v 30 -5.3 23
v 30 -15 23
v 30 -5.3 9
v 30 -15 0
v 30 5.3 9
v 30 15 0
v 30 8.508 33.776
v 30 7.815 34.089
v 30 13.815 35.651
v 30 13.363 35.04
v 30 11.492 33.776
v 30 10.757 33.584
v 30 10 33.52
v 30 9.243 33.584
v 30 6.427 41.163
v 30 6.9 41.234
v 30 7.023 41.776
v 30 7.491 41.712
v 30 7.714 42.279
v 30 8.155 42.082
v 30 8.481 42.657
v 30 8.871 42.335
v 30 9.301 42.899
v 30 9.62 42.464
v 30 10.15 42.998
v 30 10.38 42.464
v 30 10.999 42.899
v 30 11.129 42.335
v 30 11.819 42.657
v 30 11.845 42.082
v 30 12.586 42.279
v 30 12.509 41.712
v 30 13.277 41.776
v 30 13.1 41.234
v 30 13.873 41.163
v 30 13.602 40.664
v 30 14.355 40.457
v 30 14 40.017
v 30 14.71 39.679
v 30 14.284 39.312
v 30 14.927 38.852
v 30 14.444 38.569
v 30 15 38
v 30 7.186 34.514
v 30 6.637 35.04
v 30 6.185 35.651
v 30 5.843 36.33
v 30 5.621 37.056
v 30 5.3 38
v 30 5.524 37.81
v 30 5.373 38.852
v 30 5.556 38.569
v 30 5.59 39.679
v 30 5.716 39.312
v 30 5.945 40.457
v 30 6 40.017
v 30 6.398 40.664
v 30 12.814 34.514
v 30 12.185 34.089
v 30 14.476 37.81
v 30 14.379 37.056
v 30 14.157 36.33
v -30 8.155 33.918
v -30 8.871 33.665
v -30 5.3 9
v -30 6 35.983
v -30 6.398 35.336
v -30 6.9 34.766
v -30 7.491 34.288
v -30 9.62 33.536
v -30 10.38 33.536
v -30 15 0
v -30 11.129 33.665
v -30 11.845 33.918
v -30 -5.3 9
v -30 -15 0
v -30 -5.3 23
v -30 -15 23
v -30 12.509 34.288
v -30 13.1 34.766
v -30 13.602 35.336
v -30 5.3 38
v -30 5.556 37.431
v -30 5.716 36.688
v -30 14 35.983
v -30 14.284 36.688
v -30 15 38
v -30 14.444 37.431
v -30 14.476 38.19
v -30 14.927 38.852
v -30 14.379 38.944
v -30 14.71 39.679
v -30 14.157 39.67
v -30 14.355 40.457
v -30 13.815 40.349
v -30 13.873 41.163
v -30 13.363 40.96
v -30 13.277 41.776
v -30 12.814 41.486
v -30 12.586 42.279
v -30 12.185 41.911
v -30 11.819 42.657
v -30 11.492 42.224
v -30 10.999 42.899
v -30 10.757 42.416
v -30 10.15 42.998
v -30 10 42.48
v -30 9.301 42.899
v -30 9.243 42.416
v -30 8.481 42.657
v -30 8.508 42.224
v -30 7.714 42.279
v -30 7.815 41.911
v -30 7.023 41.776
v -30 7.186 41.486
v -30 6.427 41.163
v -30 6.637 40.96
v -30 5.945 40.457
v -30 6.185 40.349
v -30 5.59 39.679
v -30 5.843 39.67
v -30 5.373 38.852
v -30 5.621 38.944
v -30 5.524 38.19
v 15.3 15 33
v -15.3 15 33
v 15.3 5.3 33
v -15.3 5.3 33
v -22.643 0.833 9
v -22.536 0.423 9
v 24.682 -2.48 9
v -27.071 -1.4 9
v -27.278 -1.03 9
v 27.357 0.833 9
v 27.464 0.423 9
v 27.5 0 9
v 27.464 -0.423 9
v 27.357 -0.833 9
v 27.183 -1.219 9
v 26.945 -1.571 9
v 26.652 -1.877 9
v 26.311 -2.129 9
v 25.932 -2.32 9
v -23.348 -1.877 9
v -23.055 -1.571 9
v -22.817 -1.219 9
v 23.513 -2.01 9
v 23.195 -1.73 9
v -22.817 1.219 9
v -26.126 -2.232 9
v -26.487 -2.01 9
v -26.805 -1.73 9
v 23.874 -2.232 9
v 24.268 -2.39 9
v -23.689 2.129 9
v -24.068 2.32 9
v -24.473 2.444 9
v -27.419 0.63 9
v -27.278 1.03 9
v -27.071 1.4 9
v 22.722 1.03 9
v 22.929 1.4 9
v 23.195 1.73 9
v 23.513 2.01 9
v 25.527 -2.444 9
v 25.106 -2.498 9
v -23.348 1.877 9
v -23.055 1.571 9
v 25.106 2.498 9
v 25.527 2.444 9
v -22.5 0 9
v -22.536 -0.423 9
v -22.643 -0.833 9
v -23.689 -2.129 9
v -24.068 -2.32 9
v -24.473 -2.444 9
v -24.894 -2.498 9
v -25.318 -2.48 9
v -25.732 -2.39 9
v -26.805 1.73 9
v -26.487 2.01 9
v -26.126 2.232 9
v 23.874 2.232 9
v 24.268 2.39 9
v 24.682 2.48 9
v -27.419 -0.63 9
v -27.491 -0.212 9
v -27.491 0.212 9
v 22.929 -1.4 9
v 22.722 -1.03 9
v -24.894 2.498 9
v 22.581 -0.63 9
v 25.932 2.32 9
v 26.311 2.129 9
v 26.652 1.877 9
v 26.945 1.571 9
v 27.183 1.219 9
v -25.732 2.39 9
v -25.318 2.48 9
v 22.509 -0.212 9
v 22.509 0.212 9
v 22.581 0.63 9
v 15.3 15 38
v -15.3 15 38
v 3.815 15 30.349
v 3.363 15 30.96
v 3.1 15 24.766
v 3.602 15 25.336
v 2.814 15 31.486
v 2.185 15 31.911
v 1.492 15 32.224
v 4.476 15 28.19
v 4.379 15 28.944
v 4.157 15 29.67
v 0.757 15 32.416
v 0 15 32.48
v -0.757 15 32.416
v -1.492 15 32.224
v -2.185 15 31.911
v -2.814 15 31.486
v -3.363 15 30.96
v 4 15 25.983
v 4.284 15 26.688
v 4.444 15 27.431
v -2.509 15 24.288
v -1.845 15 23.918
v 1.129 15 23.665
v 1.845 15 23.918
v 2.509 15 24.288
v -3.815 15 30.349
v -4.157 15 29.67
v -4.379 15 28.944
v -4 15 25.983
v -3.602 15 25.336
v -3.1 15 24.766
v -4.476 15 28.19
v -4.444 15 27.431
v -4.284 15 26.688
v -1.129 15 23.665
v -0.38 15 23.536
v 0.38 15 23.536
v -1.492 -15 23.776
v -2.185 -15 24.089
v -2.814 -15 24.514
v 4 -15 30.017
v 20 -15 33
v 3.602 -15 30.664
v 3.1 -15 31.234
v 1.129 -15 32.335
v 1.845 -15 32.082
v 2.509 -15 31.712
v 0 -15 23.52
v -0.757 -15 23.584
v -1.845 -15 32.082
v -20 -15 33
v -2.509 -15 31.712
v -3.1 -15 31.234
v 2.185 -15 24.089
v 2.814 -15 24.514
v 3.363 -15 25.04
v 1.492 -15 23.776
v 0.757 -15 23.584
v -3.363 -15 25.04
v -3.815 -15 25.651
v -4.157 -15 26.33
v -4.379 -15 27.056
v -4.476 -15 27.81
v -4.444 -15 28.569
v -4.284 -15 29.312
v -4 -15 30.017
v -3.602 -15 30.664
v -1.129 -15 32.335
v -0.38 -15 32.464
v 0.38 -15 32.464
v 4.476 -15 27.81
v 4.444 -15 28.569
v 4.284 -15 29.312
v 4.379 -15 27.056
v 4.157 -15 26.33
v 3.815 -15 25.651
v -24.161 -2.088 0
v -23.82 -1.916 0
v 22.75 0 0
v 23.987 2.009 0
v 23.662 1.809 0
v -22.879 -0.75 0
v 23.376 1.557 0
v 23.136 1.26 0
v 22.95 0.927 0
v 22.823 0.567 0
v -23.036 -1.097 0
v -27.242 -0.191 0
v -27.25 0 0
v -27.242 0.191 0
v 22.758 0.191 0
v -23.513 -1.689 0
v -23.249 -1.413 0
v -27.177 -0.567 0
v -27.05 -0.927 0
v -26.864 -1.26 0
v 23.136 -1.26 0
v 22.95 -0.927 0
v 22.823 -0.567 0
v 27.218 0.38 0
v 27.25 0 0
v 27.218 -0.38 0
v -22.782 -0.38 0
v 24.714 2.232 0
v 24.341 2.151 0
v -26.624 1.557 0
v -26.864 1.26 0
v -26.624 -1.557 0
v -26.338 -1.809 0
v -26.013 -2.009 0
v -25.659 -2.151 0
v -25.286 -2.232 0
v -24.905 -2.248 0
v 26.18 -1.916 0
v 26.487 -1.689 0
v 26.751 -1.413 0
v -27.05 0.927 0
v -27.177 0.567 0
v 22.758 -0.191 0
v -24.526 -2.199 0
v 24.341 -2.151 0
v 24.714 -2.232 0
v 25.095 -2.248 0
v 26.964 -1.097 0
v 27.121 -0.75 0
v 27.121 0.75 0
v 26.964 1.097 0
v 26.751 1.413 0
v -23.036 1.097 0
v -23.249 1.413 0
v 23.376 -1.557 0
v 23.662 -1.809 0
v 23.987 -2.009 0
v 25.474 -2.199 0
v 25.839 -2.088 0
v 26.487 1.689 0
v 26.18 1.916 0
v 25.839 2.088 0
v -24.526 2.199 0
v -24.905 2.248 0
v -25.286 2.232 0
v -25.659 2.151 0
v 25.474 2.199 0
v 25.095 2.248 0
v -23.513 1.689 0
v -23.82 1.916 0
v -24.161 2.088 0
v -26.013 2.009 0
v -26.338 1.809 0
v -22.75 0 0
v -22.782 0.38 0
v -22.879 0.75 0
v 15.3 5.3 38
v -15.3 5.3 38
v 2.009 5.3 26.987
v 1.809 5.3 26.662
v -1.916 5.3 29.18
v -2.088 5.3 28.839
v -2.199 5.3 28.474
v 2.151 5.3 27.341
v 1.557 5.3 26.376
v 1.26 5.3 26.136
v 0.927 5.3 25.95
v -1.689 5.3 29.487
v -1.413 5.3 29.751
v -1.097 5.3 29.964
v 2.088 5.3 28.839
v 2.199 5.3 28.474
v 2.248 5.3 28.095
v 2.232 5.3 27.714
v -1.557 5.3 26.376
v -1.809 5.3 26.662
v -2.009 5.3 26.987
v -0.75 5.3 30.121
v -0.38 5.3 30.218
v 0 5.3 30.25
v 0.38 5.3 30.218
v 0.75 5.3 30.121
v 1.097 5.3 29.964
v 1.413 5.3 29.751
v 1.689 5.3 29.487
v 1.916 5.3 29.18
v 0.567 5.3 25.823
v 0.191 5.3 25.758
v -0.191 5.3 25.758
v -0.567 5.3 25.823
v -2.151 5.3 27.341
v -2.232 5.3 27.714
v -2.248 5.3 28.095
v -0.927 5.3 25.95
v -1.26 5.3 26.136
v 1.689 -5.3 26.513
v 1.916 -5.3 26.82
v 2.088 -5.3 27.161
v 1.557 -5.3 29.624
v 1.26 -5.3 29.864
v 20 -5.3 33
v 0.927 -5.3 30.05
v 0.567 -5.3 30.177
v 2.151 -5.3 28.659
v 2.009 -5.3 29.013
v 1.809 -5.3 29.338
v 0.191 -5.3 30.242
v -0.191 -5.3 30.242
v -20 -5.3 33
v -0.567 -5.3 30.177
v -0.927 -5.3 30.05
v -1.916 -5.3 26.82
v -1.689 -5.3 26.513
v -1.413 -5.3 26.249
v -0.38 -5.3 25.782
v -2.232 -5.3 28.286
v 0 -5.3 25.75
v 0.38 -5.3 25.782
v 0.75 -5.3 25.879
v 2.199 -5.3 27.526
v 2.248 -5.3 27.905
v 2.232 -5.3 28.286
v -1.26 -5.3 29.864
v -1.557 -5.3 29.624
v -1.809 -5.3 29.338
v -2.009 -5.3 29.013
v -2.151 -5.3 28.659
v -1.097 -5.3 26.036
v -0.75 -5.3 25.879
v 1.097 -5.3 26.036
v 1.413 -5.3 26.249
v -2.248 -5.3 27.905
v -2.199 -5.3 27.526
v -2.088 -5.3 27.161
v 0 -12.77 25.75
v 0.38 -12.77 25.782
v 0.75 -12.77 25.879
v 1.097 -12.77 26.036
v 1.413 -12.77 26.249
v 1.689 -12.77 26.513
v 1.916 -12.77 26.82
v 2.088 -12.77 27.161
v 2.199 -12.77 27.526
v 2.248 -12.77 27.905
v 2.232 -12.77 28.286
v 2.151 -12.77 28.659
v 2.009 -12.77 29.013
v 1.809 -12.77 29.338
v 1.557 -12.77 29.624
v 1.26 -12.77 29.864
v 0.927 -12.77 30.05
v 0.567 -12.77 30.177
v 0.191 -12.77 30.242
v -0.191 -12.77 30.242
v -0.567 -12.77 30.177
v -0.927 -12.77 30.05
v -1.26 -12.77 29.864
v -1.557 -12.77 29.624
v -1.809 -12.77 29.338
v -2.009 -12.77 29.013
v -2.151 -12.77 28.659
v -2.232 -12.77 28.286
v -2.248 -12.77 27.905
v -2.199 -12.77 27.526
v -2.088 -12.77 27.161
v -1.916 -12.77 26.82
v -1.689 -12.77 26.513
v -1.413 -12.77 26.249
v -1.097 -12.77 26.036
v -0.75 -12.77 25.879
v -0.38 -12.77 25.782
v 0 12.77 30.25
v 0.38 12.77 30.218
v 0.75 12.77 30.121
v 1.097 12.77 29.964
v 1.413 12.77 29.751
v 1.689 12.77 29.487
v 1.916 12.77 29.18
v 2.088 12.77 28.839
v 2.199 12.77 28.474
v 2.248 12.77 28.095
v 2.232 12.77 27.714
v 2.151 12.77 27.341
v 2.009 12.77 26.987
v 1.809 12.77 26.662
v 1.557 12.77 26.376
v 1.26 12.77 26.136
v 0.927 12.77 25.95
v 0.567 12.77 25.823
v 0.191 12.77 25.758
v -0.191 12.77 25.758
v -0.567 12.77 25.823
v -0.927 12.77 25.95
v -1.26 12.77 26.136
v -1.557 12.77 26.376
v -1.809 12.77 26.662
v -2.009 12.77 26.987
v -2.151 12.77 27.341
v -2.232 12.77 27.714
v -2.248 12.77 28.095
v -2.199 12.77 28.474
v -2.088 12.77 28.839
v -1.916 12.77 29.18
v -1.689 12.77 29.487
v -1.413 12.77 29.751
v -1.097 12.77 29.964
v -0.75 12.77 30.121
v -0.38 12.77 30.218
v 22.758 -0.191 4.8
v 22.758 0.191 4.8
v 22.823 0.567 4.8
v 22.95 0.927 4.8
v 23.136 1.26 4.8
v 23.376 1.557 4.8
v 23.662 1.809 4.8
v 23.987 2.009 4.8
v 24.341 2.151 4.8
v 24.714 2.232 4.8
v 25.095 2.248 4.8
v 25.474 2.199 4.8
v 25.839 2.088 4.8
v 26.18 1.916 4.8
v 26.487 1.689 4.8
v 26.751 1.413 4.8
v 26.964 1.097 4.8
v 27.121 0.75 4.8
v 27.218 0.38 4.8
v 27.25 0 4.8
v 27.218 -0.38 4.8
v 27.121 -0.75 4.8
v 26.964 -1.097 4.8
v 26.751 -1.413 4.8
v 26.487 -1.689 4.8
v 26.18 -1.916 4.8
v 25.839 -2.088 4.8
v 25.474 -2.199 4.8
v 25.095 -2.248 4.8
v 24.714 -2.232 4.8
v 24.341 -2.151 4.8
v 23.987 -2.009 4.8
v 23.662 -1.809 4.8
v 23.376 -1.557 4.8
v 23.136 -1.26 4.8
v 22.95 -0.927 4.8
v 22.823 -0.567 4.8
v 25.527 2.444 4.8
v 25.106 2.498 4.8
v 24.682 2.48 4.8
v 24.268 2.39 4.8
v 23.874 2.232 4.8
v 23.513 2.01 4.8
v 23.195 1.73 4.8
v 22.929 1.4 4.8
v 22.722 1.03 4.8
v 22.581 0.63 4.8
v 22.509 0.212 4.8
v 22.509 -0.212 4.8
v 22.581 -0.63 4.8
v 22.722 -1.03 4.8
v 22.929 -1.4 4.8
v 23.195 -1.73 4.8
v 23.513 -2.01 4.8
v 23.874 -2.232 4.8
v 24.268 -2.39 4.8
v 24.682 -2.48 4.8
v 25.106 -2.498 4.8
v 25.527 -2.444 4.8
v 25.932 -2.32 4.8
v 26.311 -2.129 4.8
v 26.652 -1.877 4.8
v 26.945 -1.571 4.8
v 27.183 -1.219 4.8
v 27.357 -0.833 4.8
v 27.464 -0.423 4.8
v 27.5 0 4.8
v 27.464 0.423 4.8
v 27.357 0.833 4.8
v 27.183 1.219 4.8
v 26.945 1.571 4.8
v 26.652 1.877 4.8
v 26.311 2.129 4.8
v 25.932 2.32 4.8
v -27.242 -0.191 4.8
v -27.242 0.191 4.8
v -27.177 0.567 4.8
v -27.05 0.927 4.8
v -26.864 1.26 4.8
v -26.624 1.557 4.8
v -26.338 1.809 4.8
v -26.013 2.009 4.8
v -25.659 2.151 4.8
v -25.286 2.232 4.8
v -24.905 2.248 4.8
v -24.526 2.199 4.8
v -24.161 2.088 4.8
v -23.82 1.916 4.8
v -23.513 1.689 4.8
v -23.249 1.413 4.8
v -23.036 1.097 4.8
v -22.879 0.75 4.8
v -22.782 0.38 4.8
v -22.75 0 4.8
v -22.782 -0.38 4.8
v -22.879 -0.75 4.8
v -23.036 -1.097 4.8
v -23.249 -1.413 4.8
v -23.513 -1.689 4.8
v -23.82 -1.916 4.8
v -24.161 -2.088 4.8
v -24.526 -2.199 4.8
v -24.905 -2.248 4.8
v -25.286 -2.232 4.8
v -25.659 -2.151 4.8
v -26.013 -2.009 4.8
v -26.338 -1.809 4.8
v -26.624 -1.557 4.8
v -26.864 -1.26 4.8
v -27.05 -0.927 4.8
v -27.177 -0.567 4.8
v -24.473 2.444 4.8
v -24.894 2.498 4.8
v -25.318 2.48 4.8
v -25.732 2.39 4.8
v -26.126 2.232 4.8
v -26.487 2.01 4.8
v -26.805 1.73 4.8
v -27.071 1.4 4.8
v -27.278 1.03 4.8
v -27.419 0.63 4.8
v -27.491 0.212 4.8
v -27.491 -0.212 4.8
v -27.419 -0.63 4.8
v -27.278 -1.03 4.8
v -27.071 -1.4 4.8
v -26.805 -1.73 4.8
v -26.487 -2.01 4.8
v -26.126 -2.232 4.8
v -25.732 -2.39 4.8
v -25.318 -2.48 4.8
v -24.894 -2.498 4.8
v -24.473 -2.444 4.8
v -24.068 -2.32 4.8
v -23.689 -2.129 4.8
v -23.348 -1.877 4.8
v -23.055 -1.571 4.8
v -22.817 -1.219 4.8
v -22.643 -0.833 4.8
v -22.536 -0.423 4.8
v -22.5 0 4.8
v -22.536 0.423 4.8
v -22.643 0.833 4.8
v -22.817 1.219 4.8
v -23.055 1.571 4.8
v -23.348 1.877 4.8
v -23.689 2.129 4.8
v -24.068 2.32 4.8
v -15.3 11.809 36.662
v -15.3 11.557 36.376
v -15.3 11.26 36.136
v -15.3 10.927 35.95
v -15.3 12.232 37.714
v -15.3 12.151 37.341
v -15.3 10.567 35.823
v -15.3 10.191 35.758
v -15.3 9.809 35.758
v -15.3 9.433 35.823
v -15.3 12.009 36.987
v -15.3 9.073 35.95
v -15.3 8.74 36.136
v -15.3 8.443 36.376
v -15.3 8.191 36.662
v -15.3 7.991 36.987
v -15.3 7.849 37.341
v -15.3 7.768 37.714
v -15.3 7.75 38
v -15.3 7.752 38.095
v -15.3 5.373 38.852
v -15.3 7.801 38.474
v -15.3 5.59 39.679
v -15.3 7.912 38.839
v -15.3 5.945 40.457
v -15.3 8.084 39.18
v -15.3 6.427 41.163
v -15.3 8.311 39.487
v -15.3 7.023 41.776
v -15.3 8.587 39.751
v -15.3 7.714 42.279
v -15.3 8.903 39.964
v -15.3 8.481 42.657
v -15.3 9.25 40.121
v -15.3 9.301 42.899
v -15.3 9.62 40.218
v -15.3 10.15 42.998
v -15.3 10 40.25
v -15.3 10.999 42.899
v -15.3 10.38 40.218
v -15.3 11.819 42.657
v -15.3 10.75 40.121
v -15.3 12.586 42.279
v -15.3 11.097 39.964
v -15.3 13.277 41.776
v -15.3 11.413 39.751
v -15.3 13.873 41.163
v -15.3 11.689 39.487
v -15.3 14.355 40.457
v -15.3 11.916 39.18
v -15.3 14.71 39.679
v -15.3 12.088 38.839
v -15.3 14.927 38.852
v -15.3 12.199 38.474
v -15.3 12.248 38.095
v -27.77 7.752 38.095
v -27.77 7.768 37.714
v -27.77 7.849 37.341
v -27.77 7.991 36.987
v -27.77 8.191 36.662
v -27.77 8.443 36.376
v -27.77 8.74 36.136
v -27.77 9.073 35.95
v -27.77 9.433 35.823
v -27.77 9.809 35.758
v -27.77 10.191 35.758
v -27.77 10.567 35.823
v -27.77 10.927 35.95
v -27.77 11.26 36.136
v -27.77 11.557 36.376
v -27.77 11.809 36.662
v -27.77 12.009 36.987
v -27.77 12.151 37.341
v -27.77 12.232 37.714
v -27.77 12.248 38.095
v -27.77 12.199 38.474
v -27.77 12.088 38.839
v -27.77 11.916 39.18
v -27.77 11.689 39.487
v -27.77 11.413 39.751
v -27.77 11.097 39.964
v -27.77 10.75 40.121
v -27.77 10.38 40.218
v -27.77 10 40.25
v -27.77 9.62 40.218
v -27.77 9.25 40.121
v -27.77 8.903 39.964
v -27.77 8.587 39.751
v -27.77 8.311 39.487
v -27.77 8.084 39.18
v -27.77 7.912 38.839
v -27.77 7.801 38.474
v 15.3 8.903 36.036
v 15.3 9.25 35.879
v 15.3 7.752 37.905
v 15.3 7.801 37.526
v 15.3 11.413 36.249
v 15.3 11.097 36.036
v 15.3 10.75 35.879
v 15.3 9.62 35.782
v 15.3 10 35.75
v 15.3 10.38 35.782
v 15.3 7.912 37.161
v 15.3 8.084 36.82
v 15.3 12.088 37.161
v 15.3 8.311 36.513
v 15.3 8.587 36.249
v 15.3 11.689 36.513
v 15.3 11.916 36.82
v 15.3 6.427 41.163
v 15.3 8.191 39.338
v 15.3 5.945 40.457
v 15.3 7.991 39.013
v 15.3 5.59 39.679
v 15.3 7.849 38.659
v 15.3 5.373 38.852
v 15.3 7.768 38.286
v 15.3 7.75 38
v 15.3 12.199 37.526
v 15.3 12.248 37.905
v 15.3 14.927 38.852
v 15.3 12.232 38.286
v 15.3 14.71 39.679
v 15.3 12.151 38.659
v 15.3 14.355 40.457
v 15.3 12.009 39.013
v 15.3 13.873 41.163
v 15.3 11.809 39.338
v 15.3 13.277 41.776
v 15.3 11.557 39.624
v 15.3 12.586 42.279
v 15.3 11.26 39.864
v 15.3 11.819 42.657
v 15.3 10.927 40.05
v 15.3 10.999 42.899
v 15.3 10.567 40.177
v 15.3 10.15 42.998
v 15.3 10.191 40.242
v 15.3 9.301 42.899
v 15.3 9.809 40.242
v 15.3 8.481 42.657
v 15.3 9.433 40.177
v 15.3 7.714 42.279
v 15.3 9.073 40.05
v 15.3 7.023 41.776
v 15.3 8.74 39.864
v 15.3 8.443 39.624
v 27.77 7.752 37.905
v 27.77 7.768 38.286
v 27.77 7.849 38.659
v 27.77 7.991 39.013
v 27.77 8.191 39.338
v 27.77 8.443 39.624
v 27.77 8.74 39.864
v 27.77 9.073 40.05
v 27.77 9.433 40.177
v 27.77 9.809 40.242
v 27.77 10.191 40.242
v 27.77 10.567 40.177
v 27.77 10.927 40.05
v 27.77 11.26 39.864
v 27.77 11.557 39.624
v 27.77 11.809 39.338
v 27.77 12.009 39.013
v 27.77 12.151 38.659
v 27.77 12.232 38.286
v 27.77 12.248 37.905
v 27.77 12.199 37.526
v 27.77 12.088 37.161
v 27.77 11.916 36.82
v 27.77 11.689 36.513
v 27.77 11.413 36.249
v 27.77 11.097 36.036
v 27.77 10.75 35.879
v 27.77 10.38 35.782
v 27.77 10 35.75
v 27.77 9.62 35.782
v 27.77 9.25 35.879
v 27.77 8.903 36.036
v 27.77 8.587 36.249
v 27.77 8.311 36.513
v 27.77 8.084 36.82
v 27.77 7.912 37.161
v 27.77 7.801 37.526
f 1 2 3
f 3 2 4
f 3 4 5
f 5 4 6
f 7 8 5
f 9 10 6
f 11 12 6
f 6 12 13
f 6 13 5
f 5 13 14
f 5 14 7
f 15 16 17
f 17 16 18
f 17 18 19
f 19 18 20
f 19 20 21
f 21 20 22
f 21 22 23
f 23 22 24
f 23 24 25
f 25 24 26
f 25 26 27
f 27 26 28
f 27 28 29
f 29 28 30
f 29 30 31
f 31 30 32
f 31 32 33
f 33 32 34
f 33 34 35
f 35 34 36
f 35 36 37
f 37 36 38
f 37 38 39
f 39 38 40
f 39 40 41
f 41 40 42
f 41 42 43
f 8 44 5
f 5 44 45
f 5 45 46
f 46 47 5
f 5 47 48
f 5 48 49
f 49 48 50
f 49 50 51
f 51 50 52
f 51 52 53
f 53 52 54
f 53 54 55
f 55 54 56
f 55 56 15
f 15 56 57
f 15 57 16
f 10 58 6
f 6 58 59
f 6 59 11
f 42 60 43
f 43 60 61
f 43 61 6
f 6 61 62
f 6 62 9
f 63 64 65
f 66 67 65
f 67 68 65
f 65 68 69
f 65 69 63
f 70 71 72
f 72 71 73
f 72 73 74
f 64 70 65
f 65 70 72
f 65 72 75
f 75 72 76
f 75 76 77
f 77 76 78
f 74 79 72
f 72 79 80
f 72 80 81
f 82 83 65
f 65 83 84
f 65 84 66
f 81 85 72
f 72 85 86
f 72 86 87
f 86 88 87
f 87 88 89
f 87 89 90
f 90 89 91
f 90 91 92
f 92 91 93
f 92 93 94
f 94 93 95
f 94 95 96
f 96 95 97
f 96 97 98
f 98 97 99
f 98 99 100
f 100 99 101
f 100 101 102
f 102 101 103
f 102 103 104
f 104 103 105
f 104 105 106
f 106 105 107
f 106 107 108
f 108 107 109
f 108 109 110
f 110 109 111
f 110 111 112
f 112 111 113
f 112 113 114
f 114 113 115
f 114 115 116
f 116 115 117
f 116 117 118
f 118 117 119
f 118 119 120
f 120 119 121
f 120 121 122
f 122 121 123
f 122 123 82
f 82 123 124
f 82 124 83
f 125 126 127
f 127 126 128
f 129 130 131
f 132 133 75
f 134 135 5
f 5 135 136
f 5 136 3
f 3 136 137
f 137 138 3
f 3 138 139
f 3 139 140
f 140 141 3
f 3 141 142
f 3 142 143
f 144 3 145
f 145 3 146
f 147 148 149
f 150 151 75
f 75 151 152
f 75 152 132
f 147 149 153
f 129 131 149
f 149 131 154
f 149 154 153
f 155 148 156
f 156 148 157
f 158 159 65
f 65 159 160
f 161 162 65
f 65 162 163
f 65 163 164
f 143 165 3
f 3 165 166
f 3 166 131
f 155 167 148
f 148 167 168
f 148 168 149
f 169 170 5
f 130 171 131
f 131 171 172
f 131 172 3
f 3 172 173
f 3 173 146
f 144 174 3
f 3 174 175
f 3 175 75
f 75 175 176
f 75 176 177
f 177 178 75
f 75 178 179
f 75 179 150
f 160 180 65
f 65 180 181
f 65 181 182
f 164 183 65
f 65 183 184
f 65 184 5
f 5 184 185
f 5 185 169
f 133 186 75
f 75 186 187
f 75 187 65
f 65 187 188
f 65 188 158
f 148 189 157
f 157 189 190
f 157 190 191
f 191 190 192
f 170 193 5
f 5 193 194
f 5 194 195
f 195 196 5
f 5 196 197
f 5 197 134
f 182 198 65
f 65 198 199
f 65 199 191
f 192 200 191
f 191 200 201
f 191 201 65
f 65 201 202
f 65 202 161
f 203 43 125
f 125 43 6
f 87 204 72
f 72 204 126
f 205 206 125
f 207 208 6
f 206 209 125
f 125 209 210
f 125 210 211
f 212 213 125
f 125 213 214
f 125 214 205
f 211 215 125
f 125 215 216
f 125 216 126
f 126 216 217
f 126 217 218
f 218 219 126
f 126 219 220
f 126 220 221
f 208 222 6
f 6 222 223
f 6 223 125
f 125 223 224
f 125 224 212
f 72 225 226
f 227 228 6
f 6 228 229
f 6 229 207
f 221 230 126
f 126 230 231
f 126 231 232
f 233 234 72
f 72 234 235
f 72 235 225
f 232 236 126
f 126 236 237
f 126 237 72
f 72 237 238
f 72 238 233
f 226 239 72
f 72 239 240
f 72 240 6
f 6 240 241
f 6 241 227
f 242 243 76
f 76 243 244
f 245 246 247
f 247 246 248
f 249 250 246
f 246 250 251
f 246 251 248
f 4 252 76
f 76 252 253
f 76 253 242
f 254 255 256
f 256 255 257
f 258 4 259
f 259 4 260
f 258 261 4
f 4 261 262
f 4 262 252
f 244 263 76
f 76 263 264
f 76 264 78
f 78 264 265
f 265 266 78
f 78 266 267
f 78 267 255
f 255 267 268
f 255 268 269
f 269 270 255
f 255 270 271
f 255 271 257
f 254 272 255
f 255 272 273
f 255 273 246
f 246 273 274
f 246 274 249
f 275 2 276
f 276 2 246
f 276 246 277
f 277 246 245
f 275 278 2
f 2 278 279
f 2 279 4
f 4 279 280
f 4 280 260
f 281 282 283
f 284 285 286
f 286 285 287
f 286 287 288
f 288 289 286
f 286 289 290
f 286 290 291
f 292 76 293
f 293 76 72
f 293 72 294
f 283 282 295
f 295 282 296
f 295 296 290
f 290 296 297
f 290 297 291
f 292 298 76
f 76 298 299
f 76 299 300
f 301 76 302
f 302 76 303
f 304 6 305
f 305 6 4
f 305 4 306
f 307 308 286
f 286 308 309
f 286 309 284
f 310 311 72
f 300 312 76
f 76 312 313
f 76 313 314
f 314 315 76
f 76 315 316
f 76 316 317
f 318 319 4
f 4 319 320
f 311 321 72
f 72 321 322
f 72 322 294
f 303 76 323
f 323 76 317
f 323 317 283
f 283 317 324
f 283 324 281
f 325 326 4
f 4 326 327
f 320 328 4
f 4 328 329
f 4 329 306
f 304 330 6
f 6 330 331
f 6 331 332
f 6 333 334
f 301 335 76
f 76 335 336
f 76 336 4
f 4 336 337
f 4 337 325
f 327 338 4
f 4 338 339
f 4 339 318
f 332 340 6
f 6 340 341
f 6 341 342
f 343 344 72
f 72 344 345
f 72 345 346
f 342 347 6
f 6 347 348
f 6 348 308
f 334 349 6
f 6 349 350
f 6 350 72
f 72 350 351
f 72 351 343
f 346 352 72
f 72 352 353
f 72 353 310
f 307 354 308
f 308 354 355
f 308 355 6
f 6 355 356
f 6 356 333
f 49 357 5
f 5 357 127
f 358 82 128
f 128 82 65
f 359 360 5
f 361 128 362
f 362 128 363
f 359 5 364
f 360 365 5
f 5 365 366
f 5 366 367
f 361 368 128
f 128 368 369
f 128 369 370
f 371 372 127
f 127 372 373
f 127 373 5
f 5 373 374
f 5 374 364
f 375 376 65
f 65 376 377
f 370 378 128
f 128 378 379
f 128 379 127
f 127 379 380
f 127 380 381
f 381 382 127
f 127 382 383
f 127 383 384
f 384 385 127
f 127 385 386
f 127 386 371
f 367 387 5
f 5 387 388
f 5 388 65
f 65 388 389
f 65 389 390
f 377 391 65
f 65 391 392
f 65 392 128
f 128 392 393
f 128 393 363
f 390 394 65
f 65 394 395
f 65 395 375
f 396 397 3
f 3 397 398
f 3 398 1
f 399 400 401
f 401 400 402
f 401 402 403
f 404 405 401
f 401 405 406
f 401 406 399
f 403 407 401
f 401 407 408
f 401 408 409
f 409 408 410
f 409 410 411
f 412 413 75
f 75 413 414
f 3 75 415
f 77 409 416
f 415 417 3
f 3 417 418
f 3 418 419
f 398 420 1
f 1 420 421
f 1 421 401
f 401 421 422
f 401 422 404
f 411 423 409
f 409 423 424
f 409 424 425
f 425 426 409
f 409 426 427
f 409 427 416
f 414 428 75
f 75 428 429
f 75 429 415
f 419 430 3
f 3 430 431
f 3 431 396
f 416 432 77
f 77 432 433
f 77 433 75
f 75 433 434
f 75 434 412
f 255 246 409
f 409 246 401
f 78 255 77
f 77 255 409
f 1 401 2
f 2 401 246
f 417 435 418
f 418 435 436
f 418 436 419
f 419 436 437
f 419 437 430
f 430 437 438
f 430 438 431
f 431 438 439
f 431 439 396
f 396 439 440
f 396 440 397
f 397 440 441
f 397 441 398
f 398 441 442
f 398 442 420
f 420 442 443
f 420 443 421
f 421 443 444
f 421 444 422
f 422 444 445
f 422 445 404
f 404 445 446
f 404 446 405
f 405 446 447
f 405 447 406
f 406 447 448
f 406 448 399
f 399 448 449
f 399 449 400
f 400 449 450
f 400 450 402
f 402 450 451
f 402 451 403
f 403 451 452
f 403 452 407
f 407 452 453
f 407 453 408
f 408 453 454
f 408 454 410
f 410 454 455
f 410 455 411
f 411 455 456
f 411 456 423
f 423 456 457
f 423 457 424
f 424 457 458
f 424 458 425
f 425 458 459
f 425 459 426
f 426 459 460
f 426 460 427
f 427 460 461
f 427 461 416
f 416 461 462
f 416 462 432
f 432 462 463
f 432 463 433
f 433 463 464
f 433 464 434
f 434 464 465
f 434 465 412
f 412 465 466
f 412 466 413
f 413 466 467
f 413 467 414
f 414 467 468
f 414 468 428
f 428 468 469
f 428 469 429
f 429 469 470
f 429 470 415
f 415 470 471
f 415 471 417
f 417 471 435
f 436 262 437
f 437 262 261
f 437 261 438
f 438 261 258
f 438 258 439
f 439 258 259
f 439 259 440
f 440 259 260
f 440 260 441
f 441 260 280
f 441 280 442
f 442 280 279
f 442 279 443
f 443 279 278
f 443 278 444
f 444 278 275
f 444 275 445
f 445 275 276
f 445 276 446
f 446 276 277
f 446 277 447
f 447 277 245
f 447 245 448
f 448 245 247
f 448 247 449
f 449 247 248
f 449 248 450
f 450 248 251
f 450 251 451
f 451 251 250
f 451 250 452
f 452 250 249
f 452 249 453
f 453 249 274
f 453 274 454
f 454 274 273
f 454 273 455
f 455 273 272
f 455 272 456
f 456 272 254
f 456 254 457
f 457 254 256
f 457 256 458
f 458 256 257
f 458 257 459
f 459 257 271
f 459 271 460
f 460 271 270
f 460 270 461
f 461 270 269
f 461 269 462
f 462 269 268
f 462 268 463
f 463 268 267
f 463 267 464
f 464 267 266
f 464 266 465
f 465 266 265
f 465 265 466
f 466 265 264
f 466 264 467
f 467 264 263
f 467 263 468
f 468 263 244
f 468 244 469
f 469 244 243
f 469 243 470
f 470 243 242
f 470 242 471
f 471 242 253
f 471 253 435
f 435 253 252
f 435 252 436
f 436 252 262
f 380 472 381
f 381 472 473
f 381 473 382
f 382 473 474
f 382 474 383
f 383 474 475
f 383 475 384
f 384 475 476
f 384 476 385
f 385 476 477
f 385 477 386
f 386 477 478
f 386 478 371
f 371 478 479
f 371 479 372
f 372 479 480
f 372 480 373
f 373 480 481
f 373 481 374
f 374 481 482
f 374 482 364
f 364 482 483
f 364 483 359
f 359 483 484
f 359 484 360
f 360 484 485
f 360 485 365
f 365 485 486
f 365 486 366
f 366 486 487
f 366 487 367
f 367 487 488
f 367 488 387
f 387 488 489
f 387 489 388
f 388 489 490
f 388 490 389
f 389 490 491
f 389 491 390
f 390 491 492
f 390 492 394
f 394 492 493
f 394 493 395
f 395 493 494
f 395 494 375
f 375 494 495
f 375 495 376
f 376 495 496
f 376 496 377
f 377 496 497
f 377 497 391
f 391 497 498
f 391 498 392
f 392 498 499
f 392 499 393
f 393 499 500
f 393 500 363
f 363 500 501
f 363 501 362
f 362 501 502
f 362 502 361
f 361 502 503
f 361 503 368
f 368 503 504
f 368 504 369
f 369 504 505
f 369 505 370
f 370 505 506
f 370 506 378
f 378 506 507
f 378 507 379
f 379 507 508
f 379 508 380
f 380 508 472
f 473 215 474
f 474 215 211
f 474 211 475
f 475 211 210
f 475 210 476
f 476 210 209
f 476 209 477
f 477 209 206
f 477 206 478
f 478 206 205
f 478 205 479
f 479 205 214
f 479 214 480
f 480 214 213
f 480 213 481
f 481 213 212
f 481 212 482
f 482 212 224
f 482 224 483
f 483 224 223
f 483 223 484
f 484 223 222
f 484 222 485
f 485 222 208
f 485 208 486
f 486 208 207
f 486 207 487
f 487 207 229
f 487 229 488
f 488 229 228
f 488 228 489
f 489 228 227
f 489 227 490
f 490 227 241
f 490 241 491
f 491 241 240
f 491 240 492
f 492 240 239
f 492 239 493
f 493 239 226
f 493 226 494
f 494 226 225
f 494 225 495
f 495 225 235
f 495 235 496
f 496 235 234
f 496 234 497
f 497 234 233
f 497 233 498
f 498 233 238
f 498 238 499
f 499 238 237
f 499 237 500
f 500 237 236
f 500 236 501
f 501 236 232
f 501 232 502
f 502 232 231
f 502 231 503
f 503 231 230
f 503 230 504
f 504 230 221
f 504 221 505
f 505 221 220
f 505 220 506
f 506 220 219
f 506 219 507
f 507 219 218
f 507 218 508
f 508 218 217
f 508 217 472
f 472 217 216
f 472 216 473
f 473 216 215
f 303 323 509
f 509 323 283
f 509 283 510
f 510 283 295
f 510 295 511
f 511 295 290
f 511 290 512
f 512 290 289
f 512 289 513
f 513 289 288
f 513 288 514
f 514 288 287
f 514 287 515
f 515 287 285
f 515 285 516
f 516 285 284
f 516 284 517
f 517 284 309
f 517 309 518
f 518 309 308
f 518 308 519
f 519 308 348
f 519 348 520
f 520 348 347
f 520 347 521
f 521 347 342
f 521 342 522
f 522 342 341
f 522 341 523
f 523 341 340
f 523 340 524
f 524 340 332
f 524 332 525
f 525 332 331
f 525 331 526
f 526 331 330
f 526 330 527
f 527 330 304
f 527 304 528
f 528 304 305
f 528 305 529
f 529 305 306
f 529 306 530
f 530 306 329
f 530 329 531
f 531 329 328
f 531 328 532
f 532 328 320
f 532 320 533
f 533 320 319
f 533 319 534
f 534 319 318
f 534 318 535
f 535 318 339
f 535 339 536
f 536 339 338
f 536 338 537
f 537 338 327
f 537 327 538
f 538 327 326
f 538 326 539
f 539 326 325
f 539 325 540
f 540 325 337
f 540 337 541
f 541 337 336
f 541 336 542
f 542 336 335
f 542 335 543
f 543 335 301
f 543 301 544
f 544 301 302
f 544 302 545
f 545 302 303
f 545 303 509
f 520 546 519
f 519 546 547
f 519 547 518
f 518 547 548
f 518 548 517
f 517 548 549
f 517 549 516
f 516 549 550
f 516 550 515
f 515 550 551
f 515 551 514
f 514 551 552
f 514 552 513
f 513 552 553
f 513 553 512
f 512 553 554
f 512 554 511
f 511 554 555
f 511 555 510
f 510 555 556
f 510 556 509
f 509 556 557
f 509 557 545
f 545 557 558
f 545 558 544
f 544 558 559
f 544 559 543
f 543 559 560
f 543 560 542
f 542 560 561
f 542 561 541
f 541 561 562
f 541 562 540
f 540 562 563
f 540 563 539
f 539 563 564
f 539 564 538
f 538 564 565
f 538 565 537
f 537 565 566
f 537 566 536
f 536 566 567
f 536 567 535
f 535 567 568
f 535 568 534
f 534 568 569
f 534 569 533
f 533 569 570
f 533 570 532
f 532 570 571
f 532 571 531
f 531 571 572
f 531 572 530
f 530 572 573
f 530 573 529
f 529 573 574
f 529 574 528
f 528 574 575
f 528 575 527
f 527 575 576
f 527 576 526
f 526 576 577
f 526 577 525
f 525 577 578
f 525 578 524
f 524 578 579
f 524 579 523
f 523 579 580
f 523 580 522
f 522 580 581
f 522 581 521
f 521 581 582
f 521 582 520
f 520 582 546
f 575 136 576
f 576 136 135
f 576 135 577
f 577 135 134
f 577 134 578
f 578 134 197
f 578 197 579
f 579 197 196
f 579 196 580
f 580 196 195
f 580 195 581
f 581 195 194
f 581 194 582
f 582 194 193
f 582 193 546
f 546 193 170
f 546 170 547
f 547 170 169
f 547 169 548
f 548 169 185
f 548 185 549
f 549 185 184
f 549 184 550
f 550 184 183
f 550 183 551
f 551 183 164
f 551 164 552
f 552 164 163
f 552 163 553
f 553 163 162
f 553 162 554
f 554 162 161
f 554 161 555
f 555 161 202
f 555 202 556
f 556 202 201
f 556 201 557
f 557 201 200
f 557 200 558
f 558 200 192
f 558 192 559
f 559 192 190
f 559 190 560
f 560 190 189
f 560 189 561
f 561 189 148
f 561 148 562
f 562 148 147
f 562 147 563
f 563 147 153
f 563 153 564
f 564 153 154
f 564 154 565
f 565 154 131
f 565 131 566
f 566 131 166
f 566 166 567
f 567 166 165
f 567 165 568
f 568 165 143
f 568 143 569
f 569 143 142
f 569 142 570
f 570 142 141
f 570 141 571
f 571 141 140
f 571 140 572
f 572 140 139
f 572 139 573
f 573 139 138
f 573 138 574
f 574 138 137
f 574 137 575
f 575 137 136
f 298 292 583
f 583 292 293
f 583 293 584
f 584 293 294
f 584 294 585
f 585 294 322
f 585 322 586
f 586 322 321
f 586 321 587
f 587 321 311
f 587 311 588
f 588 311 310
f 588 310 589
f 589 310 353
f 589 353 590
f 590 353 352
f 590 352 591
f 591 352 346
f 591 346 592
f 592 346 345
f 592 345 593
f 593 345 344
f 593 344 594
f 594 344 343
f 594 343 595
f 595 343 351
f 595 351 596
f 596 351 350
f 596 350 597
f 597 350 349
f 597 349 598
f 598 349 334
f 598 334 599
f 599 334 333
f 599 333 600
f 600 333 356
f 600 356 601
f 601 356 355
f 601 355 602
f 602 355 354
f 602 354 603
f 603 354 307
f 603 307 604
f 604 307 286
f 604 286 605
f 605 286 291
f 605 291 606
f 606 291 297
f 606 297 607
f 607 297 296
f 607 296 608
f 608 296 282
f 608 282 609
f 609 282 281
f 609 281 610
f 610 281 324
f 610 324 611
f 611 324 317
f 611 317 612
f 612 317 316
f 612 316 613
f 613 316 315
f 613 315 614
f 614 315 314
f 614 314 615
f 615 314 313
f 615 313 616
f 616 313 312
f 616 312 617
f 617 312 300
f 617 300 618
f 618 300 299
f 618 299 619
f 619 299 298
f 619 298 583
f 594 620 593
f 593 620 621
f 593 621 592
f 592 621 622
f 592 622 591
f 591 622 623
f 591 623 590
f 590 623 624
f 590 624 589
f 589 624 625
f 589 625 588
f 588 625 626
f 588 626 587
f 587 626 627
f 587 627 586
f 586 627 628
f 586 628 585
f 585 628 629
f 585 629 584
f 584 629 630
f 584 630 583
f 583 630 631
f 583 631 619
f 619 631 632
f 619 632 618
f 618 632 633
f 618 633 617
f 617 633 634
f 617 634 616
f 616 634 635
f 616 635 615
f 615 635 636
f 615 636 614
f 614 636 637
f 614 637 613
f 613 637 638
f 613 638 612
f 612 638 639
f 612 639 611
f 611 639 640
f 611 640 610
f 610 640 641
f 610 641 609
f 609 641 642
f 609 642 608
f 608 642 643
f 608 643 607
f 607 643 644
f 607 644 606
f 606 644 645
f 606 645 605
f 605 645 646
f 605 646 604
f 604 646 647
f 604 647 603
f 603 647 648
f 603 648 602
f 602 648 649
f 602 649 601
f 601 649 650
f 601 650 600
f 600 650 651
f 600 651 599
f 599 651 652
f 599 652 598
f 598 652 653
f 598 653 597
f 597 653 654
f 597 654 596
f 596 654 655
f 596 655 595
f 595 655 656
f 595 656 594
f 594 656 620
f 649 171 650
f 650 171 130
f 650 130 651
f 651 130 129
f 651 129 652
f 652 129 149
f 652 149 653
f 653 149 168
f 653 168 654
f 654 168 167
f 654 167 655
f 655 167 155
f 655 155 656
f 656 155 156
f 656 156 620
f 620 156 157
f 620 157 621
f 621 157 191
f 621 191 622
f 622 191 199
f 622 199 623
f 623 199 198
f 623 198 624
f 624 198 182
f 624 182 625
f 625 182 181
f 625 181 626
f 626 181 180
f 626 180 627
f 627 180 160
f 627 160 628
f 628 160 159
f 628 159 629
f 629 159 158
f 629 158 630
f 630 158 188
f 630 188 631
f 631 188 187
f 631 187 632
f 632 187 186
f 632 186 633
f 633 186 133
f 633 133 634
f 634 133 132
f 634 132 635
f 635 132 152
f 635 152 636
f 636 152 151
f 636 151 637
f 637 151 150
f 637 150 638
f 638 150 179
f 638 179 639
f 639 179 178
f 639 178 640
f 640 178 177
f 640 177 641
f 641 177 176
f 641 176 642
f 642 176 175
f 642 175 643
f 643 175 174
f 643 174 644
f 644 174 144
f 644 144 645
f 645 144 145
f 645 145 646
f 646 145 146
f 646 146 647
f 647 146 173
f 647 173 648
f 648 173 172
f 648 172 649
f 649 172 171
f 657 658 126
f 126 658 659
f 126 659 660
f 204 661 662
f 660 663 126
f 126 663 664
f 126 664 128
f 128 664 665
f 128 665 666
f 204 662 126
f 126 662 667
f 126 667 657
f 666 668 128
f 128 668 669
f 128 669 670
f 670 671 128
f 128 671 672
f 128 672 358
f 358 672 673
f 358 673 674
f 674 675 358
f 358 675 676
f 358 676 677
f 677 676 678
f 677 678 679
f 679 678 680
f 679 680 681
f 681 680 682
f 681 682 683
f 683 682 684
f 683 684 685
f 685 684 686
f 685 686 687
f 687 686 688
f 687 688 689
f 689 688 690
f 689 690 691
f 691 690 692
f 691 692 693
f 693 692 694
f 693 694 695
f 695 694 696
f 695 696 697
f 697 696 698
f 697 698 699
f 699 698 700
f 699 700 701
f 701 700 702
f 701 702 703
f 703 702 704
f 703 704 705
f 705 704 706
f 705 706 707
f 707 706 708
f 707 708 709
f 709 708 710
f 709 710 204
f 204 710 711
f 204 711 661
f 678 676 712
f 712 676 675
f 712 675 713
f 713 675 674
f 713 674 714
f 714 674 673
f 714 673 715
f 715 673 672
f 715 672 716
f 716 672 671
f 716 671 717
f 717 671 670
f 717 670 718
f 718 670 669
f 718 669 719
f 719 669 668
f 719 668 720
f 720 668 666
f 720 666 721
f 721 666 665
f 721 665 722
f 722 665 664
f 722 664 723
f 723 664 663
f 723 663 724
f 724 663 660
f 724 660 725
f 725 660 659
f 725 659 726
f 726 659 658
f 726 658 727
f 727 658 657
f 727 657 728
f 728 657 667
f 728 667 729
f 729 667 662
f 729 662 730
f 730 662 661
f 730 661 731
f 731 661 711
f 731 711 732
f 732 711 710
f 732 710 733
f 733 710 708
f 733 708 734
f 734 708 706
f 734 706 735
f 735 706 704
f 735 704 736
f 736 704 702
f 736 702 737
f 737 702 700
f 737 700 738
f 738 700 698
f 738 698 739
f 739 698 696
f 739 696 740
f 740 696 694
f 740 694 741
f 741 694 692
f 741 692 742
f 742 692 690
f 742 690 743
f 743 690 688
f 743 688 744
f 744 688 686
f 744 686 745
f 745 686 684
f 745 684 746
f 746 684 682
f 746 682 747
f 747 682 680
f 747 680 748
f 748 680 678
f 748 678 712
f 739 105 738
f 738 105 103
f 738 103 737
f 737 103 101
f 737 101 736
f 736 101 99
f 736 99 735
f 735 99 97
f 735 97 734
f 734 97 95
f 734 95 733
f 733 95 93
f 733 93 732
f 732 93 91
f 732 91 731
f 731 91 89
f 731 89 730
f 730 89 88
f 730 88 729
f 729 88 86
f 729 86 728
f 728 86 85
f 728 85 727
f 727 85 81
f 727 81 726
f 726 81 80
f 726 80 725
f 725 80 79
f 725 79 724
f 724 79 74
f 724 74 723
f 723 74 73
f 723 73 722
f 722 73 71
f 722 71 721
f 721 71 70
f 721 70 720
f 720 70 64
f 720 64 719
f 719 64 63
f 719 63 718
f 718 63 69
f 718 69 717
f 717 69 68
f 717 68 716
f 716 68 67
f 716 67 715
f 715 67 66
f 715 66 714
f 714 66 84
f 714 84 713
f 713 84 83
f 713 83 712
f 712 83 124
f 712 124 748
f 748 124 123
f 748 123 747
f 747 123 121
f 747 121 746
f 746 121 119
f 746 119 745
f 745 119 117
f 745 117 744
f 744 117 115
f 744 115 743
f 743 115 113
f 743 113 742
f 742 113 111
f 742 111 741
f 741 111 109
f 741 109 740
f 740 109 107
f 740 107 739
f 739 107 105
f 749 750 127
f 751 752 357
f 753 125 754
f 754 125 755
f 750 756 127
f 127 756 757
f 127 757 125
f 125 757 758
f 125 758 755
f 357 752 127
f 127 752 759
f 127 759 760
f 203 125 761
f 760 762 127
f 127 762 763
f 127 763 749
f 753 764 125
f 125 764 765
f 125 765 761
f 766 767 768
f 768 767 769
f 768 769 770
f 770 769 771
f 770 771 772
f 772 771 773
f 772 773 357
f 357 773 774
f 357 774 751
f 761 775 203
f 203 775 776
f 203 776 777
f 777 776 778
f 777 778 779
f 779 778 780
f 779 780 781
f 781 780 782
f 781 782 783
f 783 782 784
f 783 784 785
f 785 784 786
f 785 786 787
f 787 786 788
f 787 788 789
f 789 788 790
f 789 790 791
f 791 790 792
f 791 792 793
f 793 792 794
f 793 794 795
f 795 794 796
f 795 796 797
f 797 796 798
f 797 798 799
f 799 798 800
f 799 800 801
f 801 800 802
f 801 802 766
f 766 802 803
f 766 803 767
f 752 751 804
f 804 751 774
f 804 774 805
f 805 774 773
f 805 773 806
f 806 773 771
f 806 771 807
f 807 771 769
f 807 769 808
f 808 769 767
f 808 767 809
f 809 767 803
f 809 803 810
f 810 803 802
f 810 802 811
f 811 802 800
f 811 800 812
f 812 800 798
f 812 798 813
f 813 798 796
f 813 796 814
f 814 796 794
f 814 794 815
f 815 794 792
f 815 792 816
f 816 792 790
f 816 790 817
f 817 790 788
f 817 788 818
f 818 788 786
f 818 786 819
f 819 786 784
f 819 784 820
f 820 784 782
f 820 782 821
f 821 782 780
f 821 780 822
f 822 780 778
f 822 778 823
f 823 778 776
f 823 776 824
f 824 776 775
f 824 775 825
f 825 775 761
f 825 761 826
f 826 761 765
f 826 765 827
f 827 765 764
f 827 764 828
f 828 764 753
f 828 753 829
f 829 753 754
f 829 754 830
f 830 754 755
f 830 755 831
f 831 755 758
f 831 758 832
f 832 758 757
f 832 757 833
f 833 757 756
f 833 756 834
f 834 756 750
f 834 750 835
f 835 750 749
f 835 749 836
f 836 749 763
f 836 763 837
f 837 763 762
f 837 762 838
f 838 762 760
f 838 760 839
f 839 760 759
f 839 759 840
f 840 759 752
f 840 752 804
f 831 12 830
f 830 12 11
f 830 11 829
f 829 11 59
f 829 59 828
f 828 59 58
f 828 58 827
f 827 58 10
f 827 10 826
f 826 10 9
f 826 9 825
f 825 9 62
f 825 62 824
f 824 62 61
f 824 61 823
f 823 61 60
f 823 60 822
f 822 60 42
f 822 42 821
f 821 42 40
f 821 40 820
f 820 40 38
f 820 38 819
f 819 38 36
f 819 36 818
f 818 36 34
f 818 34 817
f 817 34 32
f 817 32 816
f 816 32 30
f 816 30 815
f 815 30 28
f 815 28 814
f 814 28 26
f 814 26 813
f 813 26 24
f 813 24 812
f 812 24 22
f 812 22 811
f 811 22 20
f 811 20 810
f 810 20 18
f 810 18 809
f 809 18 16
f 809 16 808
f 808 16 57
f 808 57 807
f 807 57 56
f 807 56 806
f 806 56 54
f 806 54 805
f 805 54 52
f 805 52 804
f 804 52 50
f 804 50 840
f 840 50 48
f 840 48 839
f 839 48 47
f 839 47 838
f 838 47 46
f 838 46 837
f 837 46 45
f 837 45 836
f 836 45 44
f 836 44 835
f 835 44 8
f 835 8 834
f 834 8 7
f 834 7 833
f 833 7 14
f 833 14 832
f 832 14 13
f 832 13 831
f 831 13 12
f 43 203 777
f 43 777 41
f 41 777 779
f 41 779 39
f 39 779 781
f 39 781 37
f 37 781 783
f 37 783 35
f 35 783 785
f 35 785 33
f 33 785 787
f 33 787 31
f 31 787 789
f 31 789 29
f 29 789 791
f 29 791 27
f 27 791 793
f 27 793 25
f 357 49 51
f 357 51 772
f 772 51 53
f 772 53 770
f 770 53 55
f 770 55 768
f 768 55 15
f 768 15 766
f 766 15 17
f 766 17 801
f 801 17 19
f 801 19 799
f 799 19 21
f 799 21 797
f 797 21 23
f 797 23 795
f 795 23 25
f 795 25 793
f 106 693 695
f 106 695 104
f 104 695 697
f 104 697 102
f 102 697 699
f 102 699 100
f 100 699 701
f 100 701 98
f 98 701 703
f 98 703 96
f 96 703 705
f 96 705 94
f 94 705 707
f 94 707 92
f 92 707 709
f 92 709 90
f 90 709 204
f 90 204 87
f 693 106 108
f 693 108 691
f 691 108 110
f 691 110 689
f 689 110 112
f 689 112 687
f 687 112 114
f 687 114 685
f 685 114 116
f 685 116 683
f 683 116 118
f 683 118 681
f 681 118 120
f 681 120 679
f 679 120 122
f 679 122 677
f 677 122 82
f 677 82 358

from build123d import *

# Parameters (mm, degrees)
SKETCH1_W                               = 60
SKETCH1_H                               = 30
BOSS_EXTRUDE1_DEPTH                     = 9
SKETCH2_W                               = 60
SKETCH2_H                               = 9.7
BOSS_EXTRUDE2_DEPTH                     = 24
CHAMFER1_SIZE                           = 10
CSK_FOR_M4_SFHCS1_D                     = 4.5
CSK_FOR_M4_SFHCS1_DEPTH                 = 12
CSK_FOR_M4_SFHCS1_CSINK_D               = 8.96
CSK_FOR_M4_SFHCS1_CSINK_ANGLE           = 90
CSK_FOR_M4_SFHCS1_TIP                   = 1.351936393
CSK_FOR_M4_SFHCS3_D                     = 4.5
CSK_FOR_M4_SFHCS3_DEPTH                 = 12
CSK_FOR_M4_SFHCS3_CSINK_D               = 8.96
CSK_FOR_M4_SFHCS3_CSINK_ANGLE           = 90
CSK_FOR_M4_SFHCS3_TIP                   = 1.351936393
CBORE_FOR_M5_HEX_HEAD_BOLT2_D           = 4.5
CBORE_FOR_M5_HEX_HEAD_BOLT2_DEPTH       = 12
CBORE_FOR_M5_HEX_HEAD_BOLT2_CBORE_D     = 5
CBORE_FOR_M5_HEX_HEAD_BOLT2_CBORE_DEPTH = 4.2
CBORE_FOR_M5_HEX_HEAD_BOLT2_TIP         = 1.351936393
SKETCH9_W                               = 14.7
SKETCH9_H                               = 9.7
BOSS_EXTRUDE3_DEPTH                     = 10
CSK_FOR_M4_SFHCS2_D                     = 4.5
CSK_FOR_M4_SFHCS2_CSINK_D               = 8.96
CSK_FOR_M4_SFHCS2_CSINK_ANGLE           = 90
FILLET1_R                               = 5


with BuildPart() as part:
    # Sketch1 → Boss-Extrude1 (new body)
    with BuildSketch(Plane.XY):
        Rectangle(SKETCH1_W, SKETCH1_H)
    extrude(amount=BOSS_EXTRUDE1_DEPTH)

    # Sketch2 → Boss-Extrude2 (add)
    with BuildSketch(Plane.XY.offset(9)):
        with Locations((0, 10.15)):
            Rectangle(SKETCH2_W, SKETCH2_H)
        with Locations((0, -10.15)):
            Rectangle(SKETCH2_W, SKETCH2_H)
    extrude(amount=BOSS_EXTRUDE2_DEPTH)

    # Chamfer1
    chamfer1_edges = [part.edges().sort_by_distance(p)[0] for p in [
        (30, -10.15, 33),
        (-30, -10.15, 33),
    ]]
    chamfer(chamfer1_edges, length=CHAMFER1_SIZE)

    # CSK for M4 SFHCS1
    with Locations(Plane(origin=(0, -15, 0), x_dir=(-1, 0, 0), z_dir=(0, -1, 0))):
        with Locations((0, -28)):
            CounterSinkHole(CSK_FOR_M4_SFHCS1_D / 2, CSK_FOR_M4_SFHCS1_CSINK_D / 2, depth=CSK_FOR_M4_SFHCS1_DEPTH, counter_sink_angle=CSK_FOR_M4_SFHCS1_CSINK_ANGLE)
            with Locations((0, 0, -(CSK_FOR_M4_SFHCS1_DEPTH + CSK_FOR_M4_SFHCS1_TIP / 2))):  # 118° drill point
                Cone(0, CSK_FOR_M4_SFHCS1_D / 2, CSK_FOR_M4_SFHCS1_TIP, mode=Mode.SUBTRACT)

    # CSK for M4 SFHCS3
    with Locations(Plane(origin=(0, 15, 0), x_dir=(1, 0, 0), z_dir=(0, 1, 0))):
        with Locations((0, -28)):
            CounterSinkHole(CSK_FOR_M4_SFHCS3_D / 2, CSK_FOR_M4_SFHCS3_CSINK_D / 2, depth=CSK_FOR_M4_SFHCS3_DEPTH, counter_sink_angle=CSK_FOR_M4_SFHCS3_CSINK_ANGLE)
            with Locations((0, 0, -(CSK_FOR_M4_SFHCS3_DEPTH + CSK_FOR_M4_SFHCS3_TIP / 2))):  # 118° drill point
                Cone(0, CSK_FOR_M4_SFHCS3_D / 2, CSK_FOR_M4_SFHCS3_TIP, mode=Mode.SUBTRACT)

    # CBORE for M5 Hex Head Bolt2
    with Locations(Plane.XY.offset(9)):
        with Locations((-25, 0), (25, 0)):
            CounterBoreHole(CBORE_FOR_M5_HEX_HEAD_BOLT2_D / 2, CBORE_FOR_M5_HEX_HEAD_BOLT2_CBORE_D / 2, CBORE_FOR_M5_HEX_HEAD_BOLT2_CBORE_DEPTH, depth=CBORE_FOR_M5_HEX_HEAD_BOLT2_DEPTH)
            with Locations((0, 0, -(CBORE_FOR_M5_HEX_HEAD_BOLT2_DEPTH + CBORE_FOR_M5_HEX_HEAD_BOLT2_TIP / 2))):  # 118° drill point
                Cone(0, CBORE_FOR_M5_HEX_HEAD_BOLT2_D / 2, CBORE_FOR_M5_HEX_HEAD_BOLT2_TIP, mode=Mode.SUBTRACT)

    # Sketch9 → Boss-Extrude3 (add)
    with BuildSketch(Plane.XY.offset(33)):
        with Locations((-22.65, 10.15)):
            Rectangle(SKETCH9_W, SKETCH9_H)
    boss_extrude3 = extrude(amount=BOSS_EXTRUDE3_DEPTH)

    # CSK for M4 SFHCS2 (through all)
    with Locations(Plane.ZY.offset(30)):
        with Locations((38, 10)):
            csk_for_m4_sfhcs2 = CounterSinkHole(CSK_FOR_M4_SFHCS2_D / 2, CSK_FOR_M4_SFHCS2_CSINK_D / 2, counter_sink_angle=CSK_FOR_M4_SFHCS2_CSINK_ANGLE)

    # Mirror1: Boss-Extrude3, CSK for M4 SFHCS2 across plane
    add(boss_extrude3.mirror(Plane(origin=(0, 0, 0), x_dir=(0, 0, 1), z_dir=(1, 0, 0))))
    add(csk_for_m4_sfhcs2.mirror(Plane(origin=(0, 0, 0), x_dir=(0, 0, 1), z_dir=(1, 0, 0))), mode=Mode.SUBTRACT)

    # Fillet1
    # the kernel refuses this fillet: 5 mm, written as the material it takes off along each edge
    with BuildSketch(Plane(origin=(2.8, 5.3, 43), x_dir=(0, 0, -1), z_dir=(1, 0, 0)), Plane(origin=(42.5, 15, 43), x_dir=(0, 0, -1), z_dir=(-1, 0, 0))) as fillet1_piece_1:
        with BuildLine():
            CenterArc((FILLET1_R, FILLET1_R), FILLET1_R, 180, 90)
            Line((0, FILLET1_R), (0, 0))
            Line((0, 0), (FILLET1_R, 0))
        make_face()
    extrude(amount=39.7, mode=Mode.SUBTRACT)
    with BuildSketch(Plane(origin=(-2.8, 5.3, 43), x_dir=(0, 0, -1), z_dir=(-1, 0, 0)), Plane(origin=(-42.5, 15, 43), x_dir=(0, 0, -1), z_dir=(1, 0, 0))) as fillet1_piece_2:
        with BuildLine():
            CenterArc((FILLET1_R, -FILLET1_R), FILLET1_R, 90, 90)
            Line((0, -FILLET1_R), (0, 0))
            Line((0, 0), (FILLET1_R, 0))
        make_face()
    extrude(amount=39.7, mode=Mode.SUBTRACT)


solid = part.part
